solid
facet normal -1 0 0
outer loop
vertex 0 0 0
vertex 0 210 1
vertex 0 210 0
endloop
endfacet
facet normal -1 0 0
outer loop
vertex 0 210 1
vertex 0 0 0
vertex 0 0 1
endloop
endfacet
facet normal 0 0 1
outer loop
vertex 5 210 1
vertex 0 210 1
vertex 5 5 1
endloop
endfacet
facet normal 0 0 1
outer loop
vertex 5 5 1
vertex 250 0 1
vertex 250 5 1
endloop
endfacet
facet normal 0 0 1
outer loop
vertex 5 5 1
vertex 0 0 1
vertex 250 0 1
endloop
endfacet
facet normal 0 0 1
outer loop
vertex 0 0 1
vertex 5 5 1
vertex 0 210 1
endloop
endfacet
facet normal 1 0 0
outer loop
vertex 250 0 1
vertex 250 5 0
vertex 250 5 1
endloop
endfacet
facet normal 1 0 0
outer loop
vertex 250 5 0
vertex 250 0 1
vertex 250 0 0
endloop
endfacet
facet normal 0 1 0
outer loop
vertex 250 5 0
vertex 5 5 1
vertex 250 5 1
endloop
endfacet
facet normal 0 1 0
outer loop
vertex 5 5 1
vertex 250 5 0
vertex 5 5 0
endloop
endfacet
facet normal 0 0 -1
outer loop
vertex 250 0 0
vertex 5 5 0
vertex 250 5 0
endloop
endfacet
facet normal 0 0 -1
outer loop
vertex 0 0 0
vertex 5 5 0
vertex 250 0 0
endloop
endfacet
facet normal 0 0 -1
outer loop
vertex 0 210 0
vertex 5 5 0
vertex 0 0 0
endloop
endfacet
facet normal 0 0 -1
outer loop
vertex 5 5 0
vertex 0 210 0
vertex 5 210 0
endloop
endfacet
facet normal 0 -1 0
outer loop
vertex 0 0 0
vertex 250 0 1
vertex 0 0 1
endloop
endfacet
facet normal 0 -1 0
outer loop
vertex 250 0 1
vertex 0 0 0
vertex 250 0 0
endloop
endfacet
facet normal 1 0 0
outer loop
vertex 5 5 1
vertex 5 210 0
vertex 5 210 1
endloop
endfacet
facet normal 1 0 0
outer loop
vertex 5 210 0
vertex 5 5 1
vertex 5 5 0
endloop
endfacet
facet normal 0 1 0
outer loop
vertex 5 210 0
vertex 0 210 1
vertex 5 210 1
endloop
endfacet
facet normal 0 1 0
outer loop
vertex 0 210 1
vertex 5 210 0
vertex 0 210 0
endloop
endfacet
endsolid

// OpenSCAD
// file: _config.scad
// Default to Prusa i3 mk2 dimensions

bed_width = 250;
bed_length = 210;
// main file
include <_config.scad>;

cube([bed_width, 5, 1]);
cube([5, bed_length, 1]);
